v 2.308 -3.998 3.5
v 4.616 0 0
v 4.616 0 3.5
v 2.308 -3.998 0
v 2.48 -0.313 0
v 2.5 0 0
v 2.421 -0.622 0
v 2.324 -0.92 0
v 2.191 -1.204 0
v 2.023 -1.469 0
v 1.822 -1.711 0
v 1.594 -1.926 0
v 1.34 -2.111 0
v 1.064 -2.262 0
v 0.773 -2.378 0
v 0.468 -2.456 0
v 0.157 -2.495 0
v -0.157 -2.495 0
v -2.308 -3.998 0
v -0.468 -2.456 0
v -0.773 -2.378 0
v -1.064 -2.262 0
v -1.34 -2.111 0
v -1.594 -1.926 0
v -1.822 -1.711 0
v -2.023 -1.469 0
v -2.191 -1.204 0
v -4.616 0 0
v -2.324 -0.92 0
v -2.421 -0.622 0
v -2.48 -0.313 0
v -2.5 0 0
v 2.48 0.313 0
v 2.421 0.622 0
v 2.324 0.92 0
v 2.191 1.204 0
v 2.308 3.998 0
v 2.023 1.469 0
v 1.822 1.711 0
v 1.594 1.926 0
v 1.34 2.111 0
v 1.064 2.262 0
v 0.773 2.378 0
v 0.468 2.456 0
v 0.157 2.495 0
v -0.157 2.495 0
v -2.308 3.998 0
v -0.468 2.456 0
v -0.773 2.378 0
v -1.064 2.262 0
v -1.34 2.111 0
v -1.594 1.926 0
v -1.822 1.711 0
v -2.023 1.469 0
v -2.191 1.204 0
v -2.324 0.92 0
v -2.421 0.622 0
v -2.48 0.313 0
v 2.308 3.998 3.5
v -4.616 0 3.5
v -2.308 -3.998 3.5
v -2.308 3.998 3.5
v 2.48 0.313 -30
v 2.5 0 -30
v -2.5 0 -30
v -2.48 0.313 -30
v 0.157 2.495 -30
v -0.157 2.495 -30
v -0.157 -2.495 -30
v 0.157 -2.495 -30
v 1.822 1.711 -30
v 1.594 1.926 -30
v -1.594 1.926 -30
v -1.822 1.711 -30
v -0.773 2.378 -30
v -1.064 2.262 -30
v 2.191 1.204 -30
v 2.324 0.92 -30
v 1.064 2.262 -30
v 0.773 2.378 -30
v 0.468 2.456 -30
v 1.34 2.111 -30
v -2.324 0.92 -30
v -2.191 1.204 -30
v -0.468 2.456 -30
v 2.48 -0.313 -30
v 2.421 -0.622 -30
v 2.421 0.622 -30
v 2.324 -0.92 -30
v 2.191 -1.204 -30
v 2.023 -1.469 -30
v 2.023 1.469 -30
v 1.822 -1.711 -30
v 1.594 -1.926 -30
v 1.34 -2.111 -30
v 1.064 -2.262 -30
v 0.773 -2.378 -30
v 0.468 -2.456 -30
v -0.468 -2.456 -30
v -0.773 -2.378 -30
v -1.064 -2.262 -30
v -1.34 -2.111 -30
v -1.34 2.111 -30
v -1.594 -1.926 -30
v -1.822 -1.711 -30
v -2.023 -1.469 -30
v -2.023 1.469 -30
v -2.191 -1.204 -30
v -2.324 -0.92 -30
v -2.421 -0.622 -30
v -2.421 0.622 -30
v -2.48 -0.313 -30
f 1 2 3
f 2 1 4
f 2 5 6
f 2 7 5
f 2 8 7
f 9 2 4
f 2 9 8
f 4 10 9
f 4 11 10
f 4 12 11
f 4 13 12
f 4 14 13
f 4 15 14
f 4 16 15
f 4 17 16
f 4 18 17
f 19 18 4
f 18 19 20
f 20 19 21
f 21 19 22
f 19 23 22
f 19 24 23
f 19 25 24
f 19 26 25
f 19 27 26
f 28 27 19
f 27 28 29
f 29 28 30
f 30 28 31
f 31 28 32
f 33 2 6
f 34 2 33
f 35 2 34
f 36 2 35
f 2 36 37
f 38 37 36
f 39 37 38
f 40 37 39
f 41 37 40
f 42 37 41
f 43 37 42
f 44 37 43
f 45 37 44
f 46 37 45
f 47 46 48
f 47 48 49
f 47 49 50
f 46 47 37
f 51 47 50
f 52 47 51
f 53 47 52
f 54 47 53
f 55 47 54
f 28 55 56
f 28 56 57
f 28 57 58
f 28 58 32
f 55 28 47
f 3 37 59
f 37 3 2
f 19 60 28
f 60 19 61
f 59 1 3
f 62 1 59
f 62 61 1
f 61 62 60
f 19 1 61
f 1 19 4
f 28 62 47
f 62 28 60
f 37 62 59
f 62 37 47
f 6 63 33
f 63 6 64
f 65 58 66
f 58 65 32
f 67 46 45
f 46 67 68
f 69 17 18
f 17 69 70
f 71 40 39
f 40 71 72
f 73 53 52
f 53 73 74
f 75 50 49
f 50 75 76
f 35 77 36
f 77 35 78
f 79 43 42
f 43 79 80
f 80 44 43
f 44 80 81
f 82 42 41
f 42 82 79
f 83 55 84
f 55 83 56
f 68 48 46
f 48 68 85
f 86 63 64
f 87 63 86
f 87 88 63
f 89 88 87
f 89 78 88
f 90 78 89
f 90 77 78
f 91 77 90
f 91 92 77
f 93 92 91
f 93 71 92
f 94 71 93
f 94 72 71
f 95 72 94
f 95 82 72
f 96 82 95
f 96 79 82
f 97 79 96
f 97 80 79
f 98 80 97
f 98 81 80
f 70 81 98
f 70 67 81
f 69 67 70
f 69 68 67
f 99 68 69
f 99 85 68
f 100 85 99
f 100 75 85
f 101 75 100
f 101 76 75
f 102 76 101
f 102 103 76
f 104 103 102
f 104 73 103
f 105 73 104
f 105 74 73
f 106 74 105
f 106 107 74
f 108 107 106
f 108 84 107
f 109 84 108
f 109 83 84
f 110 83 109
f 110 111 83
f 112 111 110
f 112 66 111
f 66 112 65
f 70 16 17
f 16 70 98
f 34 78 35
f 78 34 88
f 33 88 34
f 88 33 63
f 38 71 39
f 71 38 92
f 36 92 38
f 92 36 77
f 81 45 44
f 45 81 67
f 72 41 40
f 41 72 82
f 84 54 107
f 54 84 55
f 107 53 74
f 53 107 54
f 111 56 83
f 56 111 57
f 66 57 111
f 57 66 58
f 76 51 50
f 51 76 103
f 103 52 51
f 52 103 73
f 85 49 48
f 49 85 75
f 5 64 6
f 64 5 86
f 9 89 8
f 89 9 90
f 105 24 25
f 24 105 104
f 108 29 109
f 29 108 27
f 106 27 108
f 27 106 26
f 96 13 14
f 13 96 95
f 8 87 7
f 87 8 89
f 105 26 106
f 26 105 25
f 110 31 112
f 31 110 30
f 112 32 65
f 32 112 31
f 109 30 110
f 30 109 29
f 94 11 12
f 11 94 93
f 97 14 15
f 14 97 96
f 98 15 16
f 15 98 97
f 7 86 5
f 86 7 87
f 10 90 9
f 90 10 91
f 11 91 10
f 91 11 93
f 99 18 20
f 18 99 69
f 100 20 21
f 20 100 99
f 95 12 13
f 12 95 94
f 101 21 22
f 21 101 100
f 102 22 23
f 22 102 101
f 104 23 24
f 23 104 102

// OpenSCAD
$fn = 50;


difference() {
	union() {
		translate(v = [0, 0, 0]) {
			rotate(a = [0, 0, 0]) {
				translate(v = [0, 0, 0]) {
					rotate(a = [0, 0, 0]) {
						linear_extrude(height = 3.5000000000) {
							polygon(points = [[4.6160000000, 0.0000000000], [2.3080000000, 3.9975732639], [-2.3080000000, 3.9975732639], [-4.6160000000, 0.0000000000], [-2.3080000000, -3.9975732639], [2.3080000000, -3.9975732639]]);
						}
					}
				}
			}
		}
		translate(v = [0, 0, -30]) {
			rotate(a = [0, 0, 0]) {
				cylinder(h = 30, r = 2.5000000000);
			}
		}
	}
	union();
}
